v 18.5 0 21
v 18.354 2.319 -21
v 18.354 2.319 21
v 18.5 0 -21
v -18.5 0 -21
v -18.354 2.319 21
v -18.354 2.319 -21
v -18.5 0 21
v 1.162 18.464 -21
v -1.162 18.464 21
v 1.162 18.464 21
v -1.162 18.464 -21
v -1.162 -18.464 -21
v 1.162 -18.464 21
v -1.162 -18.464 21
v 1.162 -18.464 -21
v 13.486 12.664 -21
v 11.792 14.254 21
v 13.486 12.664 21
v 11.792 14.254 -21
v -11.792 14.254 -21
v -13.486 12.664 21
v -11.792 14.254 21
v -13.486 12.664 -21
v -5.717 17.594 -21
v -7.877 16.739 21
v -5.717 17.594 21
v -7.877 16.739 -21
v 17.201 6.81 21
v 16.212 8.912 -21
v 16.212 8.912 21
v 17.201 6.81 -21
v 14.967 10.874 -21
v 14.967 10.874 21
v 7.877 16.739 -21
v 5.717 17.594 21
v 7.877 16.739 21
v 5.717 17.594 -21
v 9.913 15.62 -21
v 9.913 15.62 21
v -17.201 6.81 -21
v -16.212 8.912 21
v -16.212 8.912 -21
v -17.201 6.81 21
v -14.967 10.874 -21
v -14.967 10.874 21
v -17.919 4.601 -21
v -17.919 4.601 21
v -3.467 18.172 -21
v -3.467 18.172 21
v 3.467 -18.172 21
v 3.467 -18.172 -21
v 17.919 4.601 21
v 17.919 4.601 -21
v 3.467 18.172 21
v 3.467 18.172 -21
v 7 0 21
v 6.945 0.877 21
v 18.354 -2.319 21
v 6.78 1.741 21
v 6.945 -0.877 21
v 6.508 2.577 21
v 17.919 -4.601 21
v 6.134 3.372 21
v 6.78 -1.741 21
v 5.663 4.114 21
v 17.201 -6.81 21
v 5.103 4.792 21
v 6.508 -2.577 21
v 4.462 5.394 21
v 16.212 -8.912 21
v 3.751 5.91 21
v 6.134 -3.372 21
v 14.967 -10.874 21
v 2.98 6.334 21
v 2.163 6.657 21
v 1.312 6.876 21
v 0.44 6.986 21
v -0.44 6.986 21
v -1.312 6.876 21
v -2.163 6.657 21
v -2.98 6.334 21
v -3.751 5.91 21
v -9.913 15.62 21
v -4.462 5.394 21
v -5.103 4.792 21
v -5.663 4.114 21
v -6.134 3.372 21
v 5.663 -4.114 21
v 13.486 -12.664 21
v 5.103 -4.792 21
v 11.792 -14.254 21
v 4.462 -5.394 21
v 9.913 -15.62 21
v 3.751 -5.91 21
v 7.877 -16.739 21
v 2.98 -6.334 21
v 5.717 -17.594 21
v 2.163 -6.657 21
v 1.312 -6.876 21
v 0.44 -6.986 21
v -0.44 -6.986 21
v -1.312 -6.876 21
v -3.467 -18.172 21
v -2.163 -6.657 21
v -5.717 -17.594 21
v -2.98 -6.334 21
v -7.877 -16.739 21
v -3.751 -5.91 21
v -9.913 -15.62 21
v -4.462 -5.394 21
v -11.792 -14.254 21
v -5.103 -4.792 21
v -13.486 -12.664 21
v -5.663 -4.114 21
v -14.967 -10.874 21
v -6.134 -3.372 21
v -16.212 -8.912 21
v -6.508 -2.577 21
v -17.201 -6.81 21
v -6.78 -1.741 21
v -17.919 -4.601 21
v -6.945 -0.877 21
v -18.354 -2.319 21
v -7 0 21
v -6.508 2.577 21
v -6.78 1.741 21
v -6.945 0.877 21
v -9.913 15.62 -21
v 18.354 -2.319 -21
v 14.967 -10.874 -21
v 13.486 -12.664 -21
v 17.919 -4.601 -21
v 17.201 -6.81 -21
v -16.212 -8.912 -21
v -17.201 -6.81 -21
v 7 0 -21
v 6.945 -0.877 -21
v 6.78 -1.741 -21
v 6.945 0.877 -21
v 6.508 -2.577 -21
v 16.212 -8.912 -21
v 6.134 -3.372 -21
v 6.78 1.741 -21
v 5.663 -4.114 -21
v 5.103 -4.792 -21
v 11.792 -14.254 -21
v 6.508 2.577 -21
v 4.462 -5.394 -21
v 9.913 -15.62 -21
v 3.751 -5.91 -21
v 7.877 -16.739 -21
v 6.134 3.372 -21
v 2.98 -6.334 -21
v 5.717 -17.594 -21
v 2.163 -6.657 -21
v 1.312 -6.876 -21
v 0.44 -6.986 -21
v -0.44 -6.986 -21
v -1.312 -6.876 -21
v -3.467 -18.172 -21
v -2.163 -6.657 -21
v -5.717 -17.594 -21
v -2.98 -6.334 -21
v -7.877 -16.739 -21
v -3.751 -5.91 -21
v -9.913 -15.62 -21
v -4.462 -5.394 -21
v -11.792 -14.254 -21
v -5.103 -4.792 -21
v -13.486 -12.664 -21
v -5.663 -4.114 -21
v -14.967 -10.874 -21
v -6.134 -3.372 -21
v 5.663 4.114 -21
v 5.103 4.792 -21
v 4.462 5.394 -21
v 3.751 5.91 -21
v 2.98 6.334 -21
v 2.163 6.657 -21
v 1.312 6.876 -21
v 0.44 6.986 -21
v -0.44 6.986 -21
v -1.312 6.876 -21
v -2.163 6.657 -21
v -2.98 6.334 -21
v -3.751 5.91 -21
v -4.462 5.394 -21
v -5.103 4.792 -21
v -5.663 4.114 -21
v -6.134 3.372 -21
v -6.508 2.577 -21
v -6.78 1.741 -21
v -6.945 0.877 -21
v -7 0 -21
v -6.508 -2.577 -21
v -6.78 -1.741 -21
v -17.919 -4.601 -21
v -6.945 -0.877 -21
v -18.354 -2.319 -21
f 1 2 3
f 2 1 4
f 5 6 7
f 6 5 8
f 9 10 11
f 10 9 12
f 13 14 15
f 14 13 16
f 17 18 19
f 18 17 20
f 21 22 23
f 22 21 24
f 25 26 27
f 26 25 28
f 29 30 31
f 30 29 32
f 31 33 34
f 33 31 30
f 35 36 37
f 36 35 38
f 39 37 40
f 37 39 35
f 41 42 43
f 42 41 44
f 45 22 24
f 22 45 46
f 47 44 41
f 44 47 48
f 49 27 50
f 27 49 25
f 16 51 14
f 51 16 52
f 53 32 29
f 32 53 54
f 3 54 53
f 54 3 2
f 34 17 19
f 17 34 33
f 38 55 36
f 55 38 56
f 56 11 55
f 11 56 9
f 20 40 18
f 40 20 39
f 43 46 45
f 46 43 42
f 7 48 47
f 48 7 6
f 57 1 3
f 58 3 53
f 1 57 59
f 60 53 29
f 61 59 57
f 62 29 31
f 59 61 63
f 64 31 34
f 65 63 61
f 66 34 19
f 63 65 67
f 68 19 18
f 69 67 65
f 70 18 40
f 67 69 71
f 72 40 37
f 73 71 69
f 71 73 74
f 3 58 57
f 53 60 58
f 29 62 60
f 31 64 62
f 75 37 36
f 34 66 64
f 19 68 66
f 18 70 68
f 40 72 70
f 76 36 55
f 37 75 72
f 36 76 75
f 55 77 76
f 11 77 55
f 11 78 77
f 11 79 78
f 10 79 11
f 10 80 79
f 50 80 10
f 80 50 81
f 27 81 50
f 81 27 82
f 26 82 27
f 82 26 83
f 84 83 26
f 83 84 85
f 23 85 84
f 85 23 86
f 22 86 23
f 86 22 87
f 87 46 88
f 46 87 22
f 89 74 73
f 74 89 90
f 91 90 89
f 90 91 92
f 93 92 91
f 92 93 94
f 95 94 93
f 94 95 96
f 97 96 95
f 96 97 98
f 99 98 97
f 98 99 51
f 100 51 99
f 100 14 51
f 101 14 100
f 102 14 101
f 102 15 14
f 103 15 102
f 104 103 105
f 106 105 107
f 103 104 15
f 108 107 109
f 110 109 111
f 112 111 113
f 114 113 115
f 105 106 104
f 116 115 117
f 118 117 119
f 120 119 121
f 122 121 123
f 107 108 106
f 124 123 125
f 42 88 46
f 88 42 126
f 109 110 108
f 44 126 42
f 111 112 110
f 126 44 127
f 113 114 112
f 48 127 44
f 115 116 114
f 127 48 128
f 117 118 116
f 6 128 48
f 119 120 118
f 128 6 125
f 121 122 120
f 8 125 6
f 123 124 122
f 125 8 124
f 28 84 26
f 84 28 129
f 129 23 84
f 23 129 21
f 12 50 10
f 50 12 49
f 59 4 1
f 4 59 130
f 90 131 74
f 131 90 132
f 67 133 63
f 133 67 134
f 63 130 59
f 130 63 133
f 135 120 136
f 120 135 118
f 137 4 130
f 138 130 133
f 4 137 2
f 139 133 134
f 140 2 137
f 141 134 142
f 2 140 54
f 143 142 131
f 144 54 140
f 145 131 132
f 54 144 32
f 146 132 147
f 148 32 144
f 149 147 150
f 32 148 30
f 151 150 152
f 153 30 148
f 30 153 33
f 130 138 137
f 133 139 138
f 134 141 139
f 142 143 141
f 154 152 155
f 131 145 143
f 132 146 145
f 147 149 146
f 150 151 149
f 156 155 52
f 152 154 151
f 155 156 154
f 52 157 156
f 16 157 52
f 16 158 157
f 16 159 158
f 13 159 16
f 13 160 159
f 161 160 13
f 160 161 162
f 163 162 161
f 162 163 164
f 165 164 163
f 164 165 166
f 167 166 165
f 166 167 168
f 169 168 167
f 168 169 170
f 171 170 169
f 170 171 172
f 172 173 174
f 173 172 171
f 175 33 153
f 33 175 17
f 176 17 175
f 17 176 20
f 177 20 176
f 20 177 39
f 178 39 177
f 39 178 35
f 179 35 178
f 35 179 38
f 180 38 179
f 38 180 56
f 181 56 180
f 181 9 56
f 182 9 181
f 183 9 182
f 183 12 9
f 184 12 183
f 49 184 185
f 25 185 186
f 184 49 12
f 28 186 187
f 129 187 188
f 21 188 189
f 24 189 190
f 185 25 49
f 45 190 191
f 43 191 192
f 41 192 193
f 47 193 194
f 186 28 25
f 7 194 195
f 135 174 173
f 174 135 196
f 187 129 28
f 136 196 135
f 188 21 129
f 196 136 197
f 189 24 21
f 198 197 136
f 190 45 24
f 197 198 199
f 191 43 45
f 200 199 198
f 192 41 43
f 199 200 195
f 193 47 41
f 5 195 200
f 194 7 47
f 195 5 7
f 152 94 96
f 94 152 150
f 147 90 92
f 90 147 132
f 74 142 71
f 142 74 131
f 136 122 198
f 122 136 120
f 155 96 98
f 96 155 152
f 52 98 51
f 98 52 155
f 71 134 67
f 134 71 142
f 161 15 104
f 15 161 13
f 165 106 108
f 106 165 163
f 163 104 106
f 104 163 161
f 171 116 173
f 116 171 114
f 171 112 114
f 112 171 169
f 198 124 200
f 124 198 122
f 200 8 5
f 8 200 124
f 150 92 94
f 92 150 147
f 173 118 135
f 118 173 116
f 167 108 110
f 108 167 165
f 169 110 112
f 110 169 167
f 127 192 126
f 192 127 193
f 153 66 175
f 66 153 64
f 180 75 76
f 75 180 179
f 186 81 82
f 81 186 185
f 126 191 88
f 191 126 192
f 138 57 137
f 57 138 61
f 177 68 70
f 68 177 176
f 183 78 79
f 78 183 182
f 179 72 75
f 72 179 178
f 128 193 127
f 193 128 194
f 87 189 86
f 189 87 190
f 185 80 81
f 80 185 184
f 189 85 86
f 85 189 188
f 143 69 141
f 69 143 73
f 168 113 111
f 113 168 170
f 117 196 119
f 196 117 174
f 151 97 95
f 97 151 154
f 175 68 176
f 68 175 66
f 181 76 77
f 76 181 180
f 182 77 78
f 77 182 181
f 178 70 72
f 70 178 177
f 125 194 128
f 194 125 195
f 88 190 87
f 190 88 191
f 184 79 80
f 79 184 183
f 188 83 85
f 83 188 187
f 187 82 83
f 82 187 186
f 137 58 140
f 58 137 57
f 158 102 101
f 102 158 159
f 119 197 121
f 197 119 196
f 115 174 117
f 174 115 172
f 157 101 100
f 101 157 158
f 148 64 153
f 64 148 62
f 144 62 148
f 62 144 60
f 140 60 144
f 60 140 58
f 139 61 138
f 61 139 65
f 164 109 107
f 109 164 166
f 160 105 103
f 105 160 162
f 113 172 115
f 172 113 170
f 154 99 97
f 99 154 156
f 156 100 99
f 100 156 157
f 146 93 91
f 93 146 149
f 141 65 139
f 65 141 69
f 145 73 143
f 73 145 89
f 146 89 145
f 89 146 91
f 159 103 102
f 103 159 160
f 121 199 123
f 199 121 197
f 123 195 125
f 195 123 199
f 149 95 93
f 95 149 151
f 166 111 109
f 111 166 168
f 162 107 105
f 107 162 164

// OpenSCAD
$fn = 50;


difference() {
	union() {
		translate(v = [0, 0, -21.0000000000]) {
			cylinder(h = 42, r = 18.5000000000);
		}
	}
	union() {
		translate(v = [0, 0, -100.0000000000]) {
			cylinder(h = 200, r = 7);
		}
	}
}
